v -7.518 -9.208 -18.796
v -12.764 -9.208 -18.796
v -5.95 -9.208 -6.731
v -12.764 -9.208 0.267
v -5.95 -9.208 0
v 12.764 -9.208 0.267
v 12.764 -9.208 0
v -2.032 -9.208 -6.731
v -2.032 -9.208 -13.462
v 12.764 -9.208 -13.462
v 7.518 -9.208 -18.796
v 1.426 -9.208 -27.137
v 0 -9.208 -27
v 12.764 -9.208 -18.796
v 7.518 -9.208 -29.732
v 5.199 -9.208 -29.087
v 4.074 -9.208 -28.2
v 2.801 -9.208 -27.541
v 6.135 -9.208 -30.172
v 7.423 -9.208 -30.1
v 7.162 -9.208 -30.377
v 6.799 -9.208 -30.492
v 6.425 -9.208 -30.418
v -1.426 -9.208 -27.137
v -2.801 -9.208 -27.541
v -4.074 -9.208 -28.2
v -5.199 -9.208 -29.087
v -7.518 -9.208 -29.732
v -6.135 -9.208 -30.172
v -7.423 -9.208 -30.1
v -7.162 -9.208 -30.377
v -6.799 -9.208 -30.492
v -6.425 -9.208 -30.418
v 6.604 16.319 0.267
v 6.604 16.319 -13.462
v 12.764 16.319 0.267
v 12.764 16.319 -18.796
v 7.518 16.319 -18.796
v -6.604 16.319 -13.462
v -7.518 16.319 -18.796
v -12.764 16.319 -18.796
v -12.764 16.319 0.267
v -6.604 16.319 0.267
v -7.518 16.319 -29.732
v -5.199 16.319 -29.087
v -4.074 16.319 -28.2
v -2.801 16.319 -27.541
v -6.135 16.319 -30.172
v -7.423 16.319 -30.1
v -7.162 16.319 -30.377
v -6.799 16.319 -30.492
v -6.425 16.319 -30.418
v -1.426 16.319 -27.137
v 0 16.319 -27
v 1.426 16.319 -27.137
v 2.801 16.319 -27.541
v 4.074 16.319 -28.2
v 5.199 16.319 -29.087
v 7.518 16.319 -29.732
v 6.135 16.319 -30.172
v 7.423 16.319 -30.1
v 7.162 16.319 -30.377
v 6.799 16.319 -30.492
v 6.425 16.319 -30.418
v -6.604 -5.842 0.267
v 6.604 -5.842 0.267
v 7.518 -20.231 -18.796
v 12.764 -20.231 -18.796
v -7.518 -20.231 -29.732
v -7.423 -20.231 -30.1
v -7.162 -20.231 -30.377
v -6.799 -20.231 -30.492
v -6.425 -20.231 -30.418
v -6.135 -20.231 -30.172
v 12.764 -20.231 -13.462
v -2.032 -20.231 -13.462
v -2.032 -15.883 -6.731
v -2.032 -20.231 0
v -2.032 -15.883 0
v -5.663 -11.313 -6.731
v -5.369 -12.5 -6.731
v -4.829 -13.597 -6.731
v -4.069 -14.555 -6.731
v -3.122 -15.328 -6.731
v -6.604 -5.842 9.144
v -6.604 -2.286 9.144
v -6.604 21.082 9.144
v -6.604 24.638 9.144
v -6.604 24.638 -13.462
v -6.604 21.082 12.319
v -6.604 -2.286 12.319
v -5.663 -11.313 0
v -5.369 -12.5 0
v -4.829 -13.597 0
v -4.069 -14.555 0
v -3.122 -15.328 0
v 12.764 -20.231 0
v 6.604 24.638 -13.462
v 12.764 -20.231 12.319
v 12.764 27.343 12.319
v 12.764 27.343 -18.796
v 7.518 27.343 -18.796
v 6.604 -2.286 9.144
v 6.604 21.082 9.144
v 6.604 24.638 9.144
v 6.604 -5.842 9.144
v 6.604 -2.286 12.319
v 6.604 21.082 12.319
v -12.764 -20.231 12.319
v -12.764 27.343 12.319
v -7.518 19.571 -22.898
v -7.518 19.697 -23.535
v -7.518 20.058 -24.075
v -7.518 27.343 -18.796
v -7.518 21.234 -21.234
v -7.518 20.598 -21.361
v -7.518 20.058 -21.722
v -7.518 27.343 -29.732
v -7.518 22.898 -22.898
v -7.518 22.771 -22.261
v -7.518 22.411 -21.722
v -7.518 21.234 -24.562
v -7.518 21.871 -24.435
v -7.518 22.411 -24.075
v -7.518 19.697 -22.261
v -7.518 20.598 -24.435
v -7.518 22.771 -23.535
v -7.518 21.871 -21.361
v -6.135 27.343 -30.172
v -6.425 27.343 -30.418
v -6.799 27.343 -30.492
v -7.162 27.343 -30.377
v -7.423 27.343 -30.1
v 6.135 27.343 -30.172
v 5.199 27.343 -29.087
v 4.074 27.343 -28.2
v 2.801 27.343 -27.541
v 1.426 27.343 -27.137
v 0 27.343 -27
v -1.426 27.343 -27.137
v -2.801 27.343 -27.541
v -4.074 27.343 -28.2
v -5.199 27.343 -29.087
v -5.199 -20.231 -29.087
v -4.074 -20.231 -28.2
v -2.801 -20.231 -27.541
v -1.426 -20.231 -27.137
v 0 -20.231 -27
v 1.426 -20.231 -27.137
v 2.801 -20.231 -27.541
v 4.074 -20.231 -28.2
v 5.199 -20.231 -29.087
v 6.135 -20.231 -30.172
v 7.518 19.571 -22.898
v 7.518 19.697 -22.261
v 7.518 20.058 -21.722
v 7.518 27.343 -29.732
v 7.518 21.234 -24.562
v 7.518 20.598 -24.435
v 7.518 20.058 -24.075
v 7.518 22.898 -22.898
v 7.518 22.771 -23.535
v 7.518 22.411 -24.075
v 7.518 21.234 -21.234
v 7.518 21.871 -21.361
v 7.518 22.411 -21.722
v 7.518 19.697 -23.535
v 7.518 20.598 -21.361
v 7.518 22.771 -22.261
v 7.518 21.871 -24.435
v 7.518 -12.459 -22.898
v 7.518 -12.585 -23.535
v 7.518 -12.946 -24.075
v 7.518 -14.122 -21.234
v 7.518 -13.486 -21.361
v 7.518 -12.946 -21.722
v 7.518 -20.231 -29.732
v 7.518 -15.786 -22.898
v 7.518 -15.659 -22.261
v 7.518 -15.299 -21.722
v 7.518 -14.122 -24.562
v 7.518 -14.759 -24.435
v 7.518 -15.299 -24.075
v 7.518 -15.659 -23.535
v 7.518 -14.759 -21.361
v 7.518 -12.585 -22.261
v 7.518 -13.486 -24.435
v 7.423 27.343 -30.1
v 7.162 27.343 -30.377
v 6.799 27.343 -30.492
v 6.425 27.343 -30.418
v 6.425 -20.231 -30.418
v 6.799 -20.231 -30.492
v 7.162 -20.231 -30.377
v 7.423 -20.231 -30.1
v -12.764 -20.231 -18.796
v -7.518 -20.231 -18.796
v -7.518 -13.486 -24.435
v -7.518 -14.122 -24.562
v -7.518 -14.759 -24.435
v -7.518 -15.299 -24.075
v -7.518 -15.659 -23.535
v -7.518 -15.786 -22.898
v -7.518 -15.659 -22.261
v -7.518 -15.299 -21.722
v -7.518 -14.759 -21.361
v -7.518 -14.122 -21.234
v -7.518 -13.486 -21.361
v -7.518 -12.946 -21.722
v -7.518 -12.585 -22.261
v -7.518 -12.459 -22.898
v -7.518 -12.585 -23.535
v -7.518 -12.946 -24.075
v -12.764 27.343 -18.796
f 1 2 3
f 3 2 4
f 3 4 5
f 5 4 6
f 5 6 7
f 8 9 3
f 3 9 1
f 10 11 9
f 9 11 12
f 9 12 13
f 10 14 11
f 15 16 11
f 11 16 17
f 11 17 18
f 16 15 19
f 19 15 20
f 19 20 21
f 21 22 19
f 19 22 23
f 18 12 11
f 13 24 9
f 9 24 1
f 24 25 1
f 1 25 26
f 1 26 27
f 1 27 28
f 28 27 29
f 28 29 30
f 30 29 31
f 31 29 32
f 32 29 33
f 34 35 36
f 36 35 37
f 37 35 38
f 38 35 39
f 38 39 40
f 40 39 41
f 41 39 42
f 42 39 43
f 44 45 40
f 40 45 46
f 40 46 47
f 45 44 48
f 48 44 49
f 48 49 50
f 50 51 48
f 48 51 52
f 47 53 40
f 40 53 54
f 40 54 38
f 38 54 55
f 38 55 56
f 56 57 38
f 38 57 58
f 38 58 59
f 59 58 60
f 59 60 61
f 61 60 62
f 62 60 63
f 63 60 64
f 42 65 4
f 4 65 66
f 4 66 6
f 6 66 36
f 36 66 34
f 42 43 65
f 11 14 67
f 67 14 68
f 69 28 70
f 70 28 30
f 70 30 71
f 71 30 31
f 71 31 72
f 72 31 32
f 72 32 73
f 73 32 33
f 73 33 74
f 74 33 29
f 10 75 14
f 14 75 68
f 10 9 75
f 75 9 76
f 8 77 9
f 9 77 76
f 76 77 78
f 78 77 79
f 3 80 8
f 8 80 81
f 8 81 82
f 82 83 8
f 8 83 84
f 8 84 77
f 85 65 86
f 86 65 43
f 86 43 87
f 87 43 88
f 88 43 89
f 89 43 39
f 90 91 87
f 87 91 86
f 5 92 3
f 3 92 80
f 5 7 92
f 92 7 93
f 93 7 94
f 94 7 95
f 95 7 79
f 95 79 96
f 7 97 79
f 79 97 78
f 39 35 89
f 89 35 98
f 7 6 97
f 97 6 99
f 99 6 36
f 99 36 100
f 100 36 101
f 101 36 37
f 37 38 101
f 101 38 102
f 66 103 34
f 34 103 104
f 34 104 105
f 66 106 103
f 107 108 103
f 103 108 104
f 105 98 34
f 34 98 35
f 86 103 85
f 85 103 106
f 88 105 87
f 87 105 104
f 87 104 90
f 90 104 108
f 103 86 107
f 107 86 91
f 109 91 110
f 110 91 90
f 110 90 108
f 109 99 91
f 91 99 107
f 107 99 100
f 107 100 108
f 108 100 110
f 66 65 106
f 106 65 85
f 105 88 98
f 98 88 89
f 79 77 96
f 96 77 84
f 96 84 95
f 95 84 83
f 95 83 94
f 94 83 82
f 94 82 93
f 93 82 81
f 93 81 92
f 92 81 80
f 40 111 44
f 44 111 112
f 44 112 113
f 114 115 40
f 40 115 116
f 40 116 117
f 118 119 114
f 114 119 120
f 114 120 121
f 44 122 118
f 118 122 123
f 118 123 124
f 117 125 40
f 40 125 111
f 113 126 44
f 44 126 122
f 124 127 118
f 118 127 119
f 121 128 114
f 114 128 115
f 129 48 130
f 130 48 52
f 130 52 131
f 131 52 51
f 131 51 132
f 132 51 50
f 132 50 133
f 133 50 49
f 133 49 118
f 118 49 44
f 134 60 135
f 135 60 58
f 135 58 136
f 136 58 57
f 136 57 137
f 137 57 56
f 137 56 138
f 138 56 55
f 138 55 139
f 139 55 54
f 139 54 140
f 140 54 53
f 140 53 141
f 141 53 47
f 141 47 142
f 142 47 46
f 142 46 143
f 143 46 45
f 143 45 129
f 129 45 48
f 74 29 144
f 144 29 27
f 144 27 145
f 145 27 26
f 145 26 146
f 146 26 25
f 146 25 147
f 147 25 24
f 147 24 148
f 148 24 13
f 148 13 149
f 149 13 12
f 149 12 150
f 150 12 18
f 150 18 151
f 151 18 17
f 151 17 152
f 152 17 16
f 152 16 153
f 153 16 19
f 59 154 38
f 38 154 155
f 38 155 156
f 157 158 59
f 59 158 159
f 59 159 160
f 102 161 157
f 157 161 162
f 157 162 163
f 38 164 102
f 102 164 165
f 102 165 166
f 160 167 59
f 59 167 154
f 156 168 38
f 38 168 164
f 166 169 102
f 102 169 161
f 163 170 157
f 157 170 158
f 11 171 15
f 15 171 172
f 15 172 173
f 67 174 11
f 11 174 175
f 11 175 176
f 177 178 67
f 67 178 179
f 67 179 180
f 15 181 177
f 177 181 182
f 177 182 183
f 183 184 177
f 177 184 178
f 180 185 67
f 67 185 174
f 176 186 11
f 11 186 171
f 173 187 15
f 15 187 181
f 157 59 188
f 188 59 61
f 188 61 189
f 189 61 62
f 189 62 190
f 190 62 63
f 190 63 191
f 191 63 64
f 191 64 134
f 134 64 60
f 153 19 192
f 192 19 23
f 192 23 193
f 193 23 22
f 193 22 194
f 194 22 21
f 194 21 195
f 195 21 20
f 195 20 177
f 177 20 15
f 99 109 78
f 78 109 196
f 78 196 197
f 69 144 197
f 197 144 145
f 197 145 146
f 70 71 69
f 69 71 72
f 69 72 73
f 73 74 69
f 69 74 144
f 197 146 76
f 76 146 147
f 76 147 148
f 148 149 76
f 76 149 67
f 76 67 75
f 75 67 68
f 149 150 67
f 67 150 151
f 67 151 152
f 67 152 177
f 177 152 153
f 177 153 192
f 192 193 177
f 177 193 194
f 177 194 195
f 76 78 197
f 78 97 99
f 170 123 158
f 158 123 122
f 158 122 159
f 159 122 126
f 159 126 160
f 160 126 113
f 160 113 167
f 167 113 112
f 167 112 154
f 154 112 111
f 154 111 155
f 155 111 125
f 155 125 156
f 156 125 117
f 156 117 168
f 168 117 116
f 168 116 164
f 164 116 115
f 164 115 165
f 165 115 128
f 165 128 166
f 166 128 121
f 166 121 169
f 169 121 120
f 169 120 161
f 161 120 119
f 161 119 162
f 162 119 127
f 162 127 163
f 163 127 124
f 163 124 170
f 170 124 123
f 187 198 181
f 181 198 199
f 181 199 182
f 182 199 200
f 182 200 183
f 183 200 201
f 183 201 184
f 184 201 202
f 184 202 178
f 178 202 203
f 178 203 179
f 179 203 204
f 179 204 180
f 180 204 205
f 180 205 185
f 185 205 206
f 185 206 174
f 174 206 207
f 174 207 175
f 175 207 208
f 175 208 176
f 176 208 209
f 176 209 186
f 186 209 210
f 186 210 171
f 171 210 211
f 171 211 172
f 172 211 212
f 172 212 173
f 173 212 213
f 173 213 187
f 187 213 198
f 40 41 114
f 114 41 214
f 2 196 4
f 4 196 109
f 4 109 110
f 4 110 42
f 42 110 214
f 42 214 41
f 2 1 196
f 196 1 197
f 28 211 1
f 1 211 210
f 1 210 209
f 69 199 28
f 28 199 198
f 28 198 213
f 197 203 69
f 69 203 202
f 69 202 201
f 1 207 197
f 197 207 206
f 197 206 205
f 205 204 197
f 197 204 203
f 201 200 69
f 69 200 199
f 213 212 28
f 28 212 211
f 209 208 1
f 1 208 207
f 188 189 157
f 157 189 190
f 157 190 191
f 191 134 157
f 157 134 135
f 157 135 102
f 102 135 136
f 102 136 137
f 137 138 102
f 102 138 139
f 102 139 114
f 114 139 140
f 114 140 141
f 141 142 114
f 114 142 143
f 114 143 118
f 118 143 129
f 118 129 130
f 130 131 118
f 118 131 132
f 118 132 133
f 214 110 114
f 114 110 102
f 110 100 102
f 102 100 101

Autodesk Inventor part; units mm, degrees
ref_plane "YZ Plane" through (0, 0, 0) normal (1, 0, 0) x (0, 1, 0)
sketch "Servo Containment" plane through (0, 0, 0) normal (0, 0, 1) x (1, 0, 0)
  line L0 (-22.2827, 48.831) -> (-35.4907, 48.831)
  line L1 (-35.4907, 48.831) -> (-35.4907, 18.351)
  line L2 (-35.4907, 18.351) -> (-22.2827, 18.351)
  line L3 (-22.2827, 18.351) -> (-22.2827, 48.831)
  line L4 (-22.2827, 45.275) -> (-35.4907, 45.275)
  line L5 (-35.4907, 45.275) -> (-35.4907, 21.907)
  line L6 (-35.4907, 21.907) -> (-22.2827, 21.907)
  line L7 (-22.2827, 21.907) -> (-22.2827, 45.275)
  line L8 (-28.8867, 18.351) -> (-28.8867, 21.907) construction
  line L9 (-28.8867, 45.275) -> (-28.8867, 48.831) construction
  line L10 (-28.8867, 21.907) -> (-28.8867, 27.749)
  point P0 (-28.8867, 33.0211)
  dimension "d0" = 13.208
  dimension "d1" = 30.48
  dimension "d2" = 23.368
  dimension "d4" = 5.842
sketch "zdstj" plane through (0, 0, 0) normal (0, 0, 1) x (1, 0, 0)
  line L0 (-10.4838, -7.9303) -> (-9.9261, -12.0195)
  arc A0 (-9.9261, -12.0195) -> (1.399, -12.0195) centre (-4.2636, -11.2472) ccw
  point P0 (-6.5265, -10.9007)
ref_plane "Work Plane1" through (0, 0, 0) normal (0, 0, 1) x (1, 0, 0)
sketch "Sketch1" plane through (0, 0, 0) normal (0, 0, 1) x (1, 0, 0)
  arc A0 (6.2203, -7.2241) -> (-6.2203, -7.2241) centre (0, 3.556) ccw projected
  line L0 (2.032, 8.0666) -> (2.032, -8.723) projected
  arc A1 (4.826, -6.5243) -> (4.826, 13.6363) centre (0, 3.556) ccw projected
  arc A2 (2.032, -8.723) -> (-2.032, -8.723) centre (0, 3.556) ccw projected
  line L1 (-12.7635, 27.3431) -> (12.7635, 27.3431)
  line L2 (12.7635, 27.3431) -> (12.7635, -20.2311)
  line L3 (12.7635, -20.2311) -> (-12.7635, -20.2311)
  line L4 (-12.7635, -20.2311) -> (-12.7635, 27.3431)
  arc A3 (-5.6626, -11.3133) -> (5.6626, -11.3133) centre (0, -10.541) ccw projected
  line L5 (-6.2203, -7.2241) -> (-5.6626, -11.3133) projected
  line L6 (-6.2203, -7.2241) -> (-6.2203, -20.2311)
  circle A4 centre (0, 3.556) radius 12.7635
  line L7 (14.097, 3.556) -> (0, 3.556)
  line L8 (6.604, 24.638) -> (-6.604, 24.638)
  line L9 (-6.604, 24.638) -> (-6.604, -5.842)
  line L10 (-6.604, -5.842) -> (6.604, -5.842)
  line L11 (6.604, -5.842) -> (6.604, 24.638)
  line L12 (6.604, 21.082) -> (-6.604, 21.082)
  line L13 (-6.604, 21.082) -> (-6.604, -2.286)
  line L14 (-6.604, -2.286) -> (6.604, -2.286)
  line L15 (6.604, -2.286) -> (6.604, 21.082)
  line L16 (0, -5.842) -> (0, -2.286) construction
  line L17 (0, 21.082) -> (0, 24.638) construction
  line L18 (0, -2.286) -> (0, 3.556)
  line L19 (10.7801, 9.7763) -> (14.8693, 9.2186)
  arc A5 (14.8693, 9.2186) -> (14.8693, -2.1066) centre (14.097, 3.556) cw
  point P0 (0, 0)
  point P1 (0, 3.556)
  point P2 (0, -19.05)
  point P3 (12.7635, 27.3431)
  point P4 (-12.7635, -20.2311)
  point P5 (6.604, 14.4782)
  point P6 (11.1751, 9.7224)
  point P7 (12.7635, 9.5058)
  point P8 (-12.7635, 3.556)
  point P9 (-6.604, 14.4782)
  point P10 (-6.604, 14.1054)
  point P11 (6.604, 14.1054)
  point P12 (-6.2203, -7.5892)
ref_plane "Work Plane2" through (-12.7635, 27.3431, -23.876) normal (0, 1, 0) x (1, 0, 0)
sketch "Sketch2" plane through (-12.7635, 27.3431, -23.876) normal (0, 1, 0) x (1, 0, 0)
  arc A0 (17.5895, 10.6426) -> (7.9375, 10.6426) centre (12.7635, 10.6426) ccw projected
  line L0 (17.5895, 0) -> (17.5895, 10.6426) projected
  line L1 (7.9375, 10.6426) -> (7.9375, 0) projected
  arc A1 (20.2819, 10.6426) -> (5.2451, 10.6426) centre (12.7635, 10.6426) ccw projected
  line L2 (20.2819, 10.6426) -> (20.2819, 0) projected
  line L3 (20.2819, 10.6426) -> (20.2819, 0) projected
  line L4 (25.527, -5.08) -> (25.527, 18.796) projected
  line L5 (0, 18.796) -> (25.527, 18.796) projected
  line L6 (0, -5.08) -> (0, 18.796) projected
  line L7 (5.2451, 0) -> (5.2451, 10.6426) projected
  arc A2 (20.2819, 10.6426) -> (5.2451, 10.6426) centre (12.7635, 10.6426) ccw projected
  circle A3 centre (12.7635, 10.6426) radius 7.5184
  line L8 (20.2819, 0) -> (20.32, 0) projected
  line L9 (20.32, 0) -> (20.32, -5.08) projected
  line L10 (25.527, -5.08) -> (20.32, -5.08) projected
  line L11 (5.207, -5.08) -> (0, -5.08) projected
  line L12 (5.207, 0) -> (5.207, -5.08) projected
  line L13 (5.207, 0) -> (5.2451, 0) projected
  line L14 (5.207, -5.08) -> (20.32, -5.08)
  line L15 (20.2819, 0) -> (20.2819, -5.08)
  line L16 (5.2451, 0) -> (5.2451, -5.08)
  point P0 (12.7635, -23.876)
  point P1 (20.2819, 10.6426)
  point P2 (5.2451, 10.6426)
ref_plane "Work Plane3" through (-12.7635, -20.2311, -42.672) normal (0, -1, 0) x (1, 0, 0)
extrude "Extrusion1" add sketch "Sketch2" against normal up to surface (47.5742 mm away) contours A3 L2 L15 L14 L16 L7
fillet "Fillet1" radius 0.762 2 edges at (-7.5184, 3.556, -34.5186) (7.5184, 3.556, -34.5186)
extrude "Extrusion2" add sketch "Sketch1" against normal up to surface (18.796 mm away) contours A4 L11 L8 L9 L4 L1 L2 L19 | A4 L9 L12 L11 | L3 L4 A4 L6 | L12 L9 L8 L11
sketch "Sketch3" plane through (-7.5184, -20.2311, -23.876) normal (-1, 0, 0) x (0, 0, 1)
  circle A0 centre (0.9779, 6.1087) radius 1.6637 projected
  circle A1 centre (0.9779, 41.4655) radius 1.6637 projected
  point P0 (23.876, 20.2311)
extrude "Extrusion3" cut sketch "Sketch3" against normal blind 25.4
sketch "Sketch7" plane through (0, 3.556, -18.796) normal (0, 0, 1) x (1, 0, 0)
  circle A0 centre (0, 0) radius 12.7635 projected
  line L0 (12.7635, 23.7871) -> (12.7635, -23.7871) projected
  line L1 (12.7635, -23.7871) -> (-12.7635, -23.7871) projected
  line L2 (-12.7635, 23.7871) -> (12.7635, 23.7871) projected
  line L3 (-12.7635, -23.7871) -> (-12.7635, 23.7871) projected
  line L4 (-6.2203, -11.1452) -> (-6.2203, -23.7871) projected
  arc A1 (-5.6626, -14.8693) -> (5.6626, -14.8693) centre (0, -14.097) ccw projected
  line L5 (-6.2203, -10.7801) -> (-5.6626, -14.8693) projected
  line L6 (-2.032, -23.7871) -> (-2.032, 22.087)
  line L7 (0, -23.7871) -> (0, 23.7871)
  line L8 (12.7635, 5.9498) -> (11.1751, 6.1664) projected
  point P0 (0, -3.556)
  point P1 (-2.032, -19.4386)
  point P2 (-6.1664, -11.1751)
  point P3 (12.7635, 0)
  point P4 (-2.032, -12.6007)
  dimension "d17" = 2.032
extrude "Extrusion4" add sketch "Sketch7" along normal blind 5.334 contours L0 L1 L7 A0 | A0 L8 L0 | L7 A1 L6 A0 | L6 A1 L5 A0 | L7 L1 L6 A1 | L5 A1 L6 L1 L4 A0
extrude "Extrusion5" add sketch "Sketch7" along normal up to surface (18.796 mm away) contours L5 A1 L6 L1 L4 A0
extrude "Extrusion6" cut sketch "Sketch7" along normal mid plane 55.5625 contours A0 L7 | A0 L6 L7 | A0 L6
ref_plane "Work Plane4" through (-6.2203, -16.256, -6.731) normal (0, 0, -1) x (0, 1, 0)
extrude "Extrusion7" add sketch "Sketch7" along normal up to surface (12.065 mm away) contours L6 A1 L5 A0
ref_plane "Work Plane5" through (0, 0, 9.144) normal (0, 0, 1) x (1, 0, 0)
sketch "Sketch14" plane through (0, 0, 9.144) normal (0, 0, 1) x (1, 0, 0)
  line L0 (-12.7635, -20.2311) -> (-12.7635, 27.3431) projected
  line L1 (12.7635, 27.3431) -> (-12.7635, 27.3431) projected
  line L2 (12.7635, 27.3431) -> (12.7635, -20.2311) projected
  line L3 (12.7635, -20.2311) -> (-12.7635, -20.2311) projected
  line L4 (-6.604, 24.638) -> (-6.604, -5.842) projected
  line L5 (-6.604, -5.842) -> (6.604, -5.842) projected
  line L6 (6.604, -5.842) -> (6.604, 24.638) projected
  line L7 (6.604, 24.638) -> (-6.604, 24.638) projected
  line L8 (6.604, 21.082) -> (-6.604, 21.082) projected
  line L9 (-6.604, -2.286) -> (6.604, -2.286) projected
  arc A0 (11.1751, 9.7224) -> (-12.7635, 3.556) centre (0, 3.556) ccw projected
  line L10 (0, 16.3195) -> (12.7635, 16.3195)
  arc A1 (-2.032, -9.0447) -> (12.7635, 3.556) centre (0, 3.556) ccw projected
  line L11 (0, -9.2075) -> (12.7635, -9.2075)
  point P0 (0, 0)
extrude "Extrusion8" add sketch "Sketch14" against normal up to surface (9.144 mm away) contours L0 A0 L4 L5 L6 L10 L2 A1 L11 L3 | L0 L1 L2 L10 L6 L7 L4 A0 | L11 A1 L2
extrude "Extrusion9" add sketch "Sketch14" along normal blind 3.175 contours L0 A0 L4 L5 L6 L10 L2 A1 L11 L3 | L0 L1 L2 L10 L6 L7 L4 A0 | L11 A1 L2 | L4 L7 L6 L8 | L9 L6 L5 L4
extrude "Extrusion10" cut sketch "Sketch14" against normal up to surface (22.606 mm away) contours A0 L6 L9 L4 | L4 L8 L6 L10 A0 | L4 L7 L6 L8 | L10 L6 A0
sketch "Sketch15" plane through (0, 3.556, -18.796) normal (0, 0, -1) x (-1, 0, 0)
  line L0 (0, -12.7635) -> (-22.033, -12.7635)
  line L1 (-22.033, -12.7635) -> (-22.033, 12.7635)
  line L2 (0, 12.7635) -> (-22.033, 12.7635)
  line L3 (-22.033, -12.7635) -> (27.2623, -12.7635)
  line L4 (27.2623, -12.7635) -> (27.2623, 12.7635)
  line L5 (27.2623, 12.7635) -> (-22.033, 12.7635)
  line L6 (-22.033, 12.7635) -> (-22.033, -12.7635)
  point P0 (0, -3.556)
  point P1 (0, -12.7635)
extrude "Extrusion11" cut sketch "Sketch15" along normal blind 14.2875 and the other way blind 19.0627
properties part number "Servo Mount V4"
